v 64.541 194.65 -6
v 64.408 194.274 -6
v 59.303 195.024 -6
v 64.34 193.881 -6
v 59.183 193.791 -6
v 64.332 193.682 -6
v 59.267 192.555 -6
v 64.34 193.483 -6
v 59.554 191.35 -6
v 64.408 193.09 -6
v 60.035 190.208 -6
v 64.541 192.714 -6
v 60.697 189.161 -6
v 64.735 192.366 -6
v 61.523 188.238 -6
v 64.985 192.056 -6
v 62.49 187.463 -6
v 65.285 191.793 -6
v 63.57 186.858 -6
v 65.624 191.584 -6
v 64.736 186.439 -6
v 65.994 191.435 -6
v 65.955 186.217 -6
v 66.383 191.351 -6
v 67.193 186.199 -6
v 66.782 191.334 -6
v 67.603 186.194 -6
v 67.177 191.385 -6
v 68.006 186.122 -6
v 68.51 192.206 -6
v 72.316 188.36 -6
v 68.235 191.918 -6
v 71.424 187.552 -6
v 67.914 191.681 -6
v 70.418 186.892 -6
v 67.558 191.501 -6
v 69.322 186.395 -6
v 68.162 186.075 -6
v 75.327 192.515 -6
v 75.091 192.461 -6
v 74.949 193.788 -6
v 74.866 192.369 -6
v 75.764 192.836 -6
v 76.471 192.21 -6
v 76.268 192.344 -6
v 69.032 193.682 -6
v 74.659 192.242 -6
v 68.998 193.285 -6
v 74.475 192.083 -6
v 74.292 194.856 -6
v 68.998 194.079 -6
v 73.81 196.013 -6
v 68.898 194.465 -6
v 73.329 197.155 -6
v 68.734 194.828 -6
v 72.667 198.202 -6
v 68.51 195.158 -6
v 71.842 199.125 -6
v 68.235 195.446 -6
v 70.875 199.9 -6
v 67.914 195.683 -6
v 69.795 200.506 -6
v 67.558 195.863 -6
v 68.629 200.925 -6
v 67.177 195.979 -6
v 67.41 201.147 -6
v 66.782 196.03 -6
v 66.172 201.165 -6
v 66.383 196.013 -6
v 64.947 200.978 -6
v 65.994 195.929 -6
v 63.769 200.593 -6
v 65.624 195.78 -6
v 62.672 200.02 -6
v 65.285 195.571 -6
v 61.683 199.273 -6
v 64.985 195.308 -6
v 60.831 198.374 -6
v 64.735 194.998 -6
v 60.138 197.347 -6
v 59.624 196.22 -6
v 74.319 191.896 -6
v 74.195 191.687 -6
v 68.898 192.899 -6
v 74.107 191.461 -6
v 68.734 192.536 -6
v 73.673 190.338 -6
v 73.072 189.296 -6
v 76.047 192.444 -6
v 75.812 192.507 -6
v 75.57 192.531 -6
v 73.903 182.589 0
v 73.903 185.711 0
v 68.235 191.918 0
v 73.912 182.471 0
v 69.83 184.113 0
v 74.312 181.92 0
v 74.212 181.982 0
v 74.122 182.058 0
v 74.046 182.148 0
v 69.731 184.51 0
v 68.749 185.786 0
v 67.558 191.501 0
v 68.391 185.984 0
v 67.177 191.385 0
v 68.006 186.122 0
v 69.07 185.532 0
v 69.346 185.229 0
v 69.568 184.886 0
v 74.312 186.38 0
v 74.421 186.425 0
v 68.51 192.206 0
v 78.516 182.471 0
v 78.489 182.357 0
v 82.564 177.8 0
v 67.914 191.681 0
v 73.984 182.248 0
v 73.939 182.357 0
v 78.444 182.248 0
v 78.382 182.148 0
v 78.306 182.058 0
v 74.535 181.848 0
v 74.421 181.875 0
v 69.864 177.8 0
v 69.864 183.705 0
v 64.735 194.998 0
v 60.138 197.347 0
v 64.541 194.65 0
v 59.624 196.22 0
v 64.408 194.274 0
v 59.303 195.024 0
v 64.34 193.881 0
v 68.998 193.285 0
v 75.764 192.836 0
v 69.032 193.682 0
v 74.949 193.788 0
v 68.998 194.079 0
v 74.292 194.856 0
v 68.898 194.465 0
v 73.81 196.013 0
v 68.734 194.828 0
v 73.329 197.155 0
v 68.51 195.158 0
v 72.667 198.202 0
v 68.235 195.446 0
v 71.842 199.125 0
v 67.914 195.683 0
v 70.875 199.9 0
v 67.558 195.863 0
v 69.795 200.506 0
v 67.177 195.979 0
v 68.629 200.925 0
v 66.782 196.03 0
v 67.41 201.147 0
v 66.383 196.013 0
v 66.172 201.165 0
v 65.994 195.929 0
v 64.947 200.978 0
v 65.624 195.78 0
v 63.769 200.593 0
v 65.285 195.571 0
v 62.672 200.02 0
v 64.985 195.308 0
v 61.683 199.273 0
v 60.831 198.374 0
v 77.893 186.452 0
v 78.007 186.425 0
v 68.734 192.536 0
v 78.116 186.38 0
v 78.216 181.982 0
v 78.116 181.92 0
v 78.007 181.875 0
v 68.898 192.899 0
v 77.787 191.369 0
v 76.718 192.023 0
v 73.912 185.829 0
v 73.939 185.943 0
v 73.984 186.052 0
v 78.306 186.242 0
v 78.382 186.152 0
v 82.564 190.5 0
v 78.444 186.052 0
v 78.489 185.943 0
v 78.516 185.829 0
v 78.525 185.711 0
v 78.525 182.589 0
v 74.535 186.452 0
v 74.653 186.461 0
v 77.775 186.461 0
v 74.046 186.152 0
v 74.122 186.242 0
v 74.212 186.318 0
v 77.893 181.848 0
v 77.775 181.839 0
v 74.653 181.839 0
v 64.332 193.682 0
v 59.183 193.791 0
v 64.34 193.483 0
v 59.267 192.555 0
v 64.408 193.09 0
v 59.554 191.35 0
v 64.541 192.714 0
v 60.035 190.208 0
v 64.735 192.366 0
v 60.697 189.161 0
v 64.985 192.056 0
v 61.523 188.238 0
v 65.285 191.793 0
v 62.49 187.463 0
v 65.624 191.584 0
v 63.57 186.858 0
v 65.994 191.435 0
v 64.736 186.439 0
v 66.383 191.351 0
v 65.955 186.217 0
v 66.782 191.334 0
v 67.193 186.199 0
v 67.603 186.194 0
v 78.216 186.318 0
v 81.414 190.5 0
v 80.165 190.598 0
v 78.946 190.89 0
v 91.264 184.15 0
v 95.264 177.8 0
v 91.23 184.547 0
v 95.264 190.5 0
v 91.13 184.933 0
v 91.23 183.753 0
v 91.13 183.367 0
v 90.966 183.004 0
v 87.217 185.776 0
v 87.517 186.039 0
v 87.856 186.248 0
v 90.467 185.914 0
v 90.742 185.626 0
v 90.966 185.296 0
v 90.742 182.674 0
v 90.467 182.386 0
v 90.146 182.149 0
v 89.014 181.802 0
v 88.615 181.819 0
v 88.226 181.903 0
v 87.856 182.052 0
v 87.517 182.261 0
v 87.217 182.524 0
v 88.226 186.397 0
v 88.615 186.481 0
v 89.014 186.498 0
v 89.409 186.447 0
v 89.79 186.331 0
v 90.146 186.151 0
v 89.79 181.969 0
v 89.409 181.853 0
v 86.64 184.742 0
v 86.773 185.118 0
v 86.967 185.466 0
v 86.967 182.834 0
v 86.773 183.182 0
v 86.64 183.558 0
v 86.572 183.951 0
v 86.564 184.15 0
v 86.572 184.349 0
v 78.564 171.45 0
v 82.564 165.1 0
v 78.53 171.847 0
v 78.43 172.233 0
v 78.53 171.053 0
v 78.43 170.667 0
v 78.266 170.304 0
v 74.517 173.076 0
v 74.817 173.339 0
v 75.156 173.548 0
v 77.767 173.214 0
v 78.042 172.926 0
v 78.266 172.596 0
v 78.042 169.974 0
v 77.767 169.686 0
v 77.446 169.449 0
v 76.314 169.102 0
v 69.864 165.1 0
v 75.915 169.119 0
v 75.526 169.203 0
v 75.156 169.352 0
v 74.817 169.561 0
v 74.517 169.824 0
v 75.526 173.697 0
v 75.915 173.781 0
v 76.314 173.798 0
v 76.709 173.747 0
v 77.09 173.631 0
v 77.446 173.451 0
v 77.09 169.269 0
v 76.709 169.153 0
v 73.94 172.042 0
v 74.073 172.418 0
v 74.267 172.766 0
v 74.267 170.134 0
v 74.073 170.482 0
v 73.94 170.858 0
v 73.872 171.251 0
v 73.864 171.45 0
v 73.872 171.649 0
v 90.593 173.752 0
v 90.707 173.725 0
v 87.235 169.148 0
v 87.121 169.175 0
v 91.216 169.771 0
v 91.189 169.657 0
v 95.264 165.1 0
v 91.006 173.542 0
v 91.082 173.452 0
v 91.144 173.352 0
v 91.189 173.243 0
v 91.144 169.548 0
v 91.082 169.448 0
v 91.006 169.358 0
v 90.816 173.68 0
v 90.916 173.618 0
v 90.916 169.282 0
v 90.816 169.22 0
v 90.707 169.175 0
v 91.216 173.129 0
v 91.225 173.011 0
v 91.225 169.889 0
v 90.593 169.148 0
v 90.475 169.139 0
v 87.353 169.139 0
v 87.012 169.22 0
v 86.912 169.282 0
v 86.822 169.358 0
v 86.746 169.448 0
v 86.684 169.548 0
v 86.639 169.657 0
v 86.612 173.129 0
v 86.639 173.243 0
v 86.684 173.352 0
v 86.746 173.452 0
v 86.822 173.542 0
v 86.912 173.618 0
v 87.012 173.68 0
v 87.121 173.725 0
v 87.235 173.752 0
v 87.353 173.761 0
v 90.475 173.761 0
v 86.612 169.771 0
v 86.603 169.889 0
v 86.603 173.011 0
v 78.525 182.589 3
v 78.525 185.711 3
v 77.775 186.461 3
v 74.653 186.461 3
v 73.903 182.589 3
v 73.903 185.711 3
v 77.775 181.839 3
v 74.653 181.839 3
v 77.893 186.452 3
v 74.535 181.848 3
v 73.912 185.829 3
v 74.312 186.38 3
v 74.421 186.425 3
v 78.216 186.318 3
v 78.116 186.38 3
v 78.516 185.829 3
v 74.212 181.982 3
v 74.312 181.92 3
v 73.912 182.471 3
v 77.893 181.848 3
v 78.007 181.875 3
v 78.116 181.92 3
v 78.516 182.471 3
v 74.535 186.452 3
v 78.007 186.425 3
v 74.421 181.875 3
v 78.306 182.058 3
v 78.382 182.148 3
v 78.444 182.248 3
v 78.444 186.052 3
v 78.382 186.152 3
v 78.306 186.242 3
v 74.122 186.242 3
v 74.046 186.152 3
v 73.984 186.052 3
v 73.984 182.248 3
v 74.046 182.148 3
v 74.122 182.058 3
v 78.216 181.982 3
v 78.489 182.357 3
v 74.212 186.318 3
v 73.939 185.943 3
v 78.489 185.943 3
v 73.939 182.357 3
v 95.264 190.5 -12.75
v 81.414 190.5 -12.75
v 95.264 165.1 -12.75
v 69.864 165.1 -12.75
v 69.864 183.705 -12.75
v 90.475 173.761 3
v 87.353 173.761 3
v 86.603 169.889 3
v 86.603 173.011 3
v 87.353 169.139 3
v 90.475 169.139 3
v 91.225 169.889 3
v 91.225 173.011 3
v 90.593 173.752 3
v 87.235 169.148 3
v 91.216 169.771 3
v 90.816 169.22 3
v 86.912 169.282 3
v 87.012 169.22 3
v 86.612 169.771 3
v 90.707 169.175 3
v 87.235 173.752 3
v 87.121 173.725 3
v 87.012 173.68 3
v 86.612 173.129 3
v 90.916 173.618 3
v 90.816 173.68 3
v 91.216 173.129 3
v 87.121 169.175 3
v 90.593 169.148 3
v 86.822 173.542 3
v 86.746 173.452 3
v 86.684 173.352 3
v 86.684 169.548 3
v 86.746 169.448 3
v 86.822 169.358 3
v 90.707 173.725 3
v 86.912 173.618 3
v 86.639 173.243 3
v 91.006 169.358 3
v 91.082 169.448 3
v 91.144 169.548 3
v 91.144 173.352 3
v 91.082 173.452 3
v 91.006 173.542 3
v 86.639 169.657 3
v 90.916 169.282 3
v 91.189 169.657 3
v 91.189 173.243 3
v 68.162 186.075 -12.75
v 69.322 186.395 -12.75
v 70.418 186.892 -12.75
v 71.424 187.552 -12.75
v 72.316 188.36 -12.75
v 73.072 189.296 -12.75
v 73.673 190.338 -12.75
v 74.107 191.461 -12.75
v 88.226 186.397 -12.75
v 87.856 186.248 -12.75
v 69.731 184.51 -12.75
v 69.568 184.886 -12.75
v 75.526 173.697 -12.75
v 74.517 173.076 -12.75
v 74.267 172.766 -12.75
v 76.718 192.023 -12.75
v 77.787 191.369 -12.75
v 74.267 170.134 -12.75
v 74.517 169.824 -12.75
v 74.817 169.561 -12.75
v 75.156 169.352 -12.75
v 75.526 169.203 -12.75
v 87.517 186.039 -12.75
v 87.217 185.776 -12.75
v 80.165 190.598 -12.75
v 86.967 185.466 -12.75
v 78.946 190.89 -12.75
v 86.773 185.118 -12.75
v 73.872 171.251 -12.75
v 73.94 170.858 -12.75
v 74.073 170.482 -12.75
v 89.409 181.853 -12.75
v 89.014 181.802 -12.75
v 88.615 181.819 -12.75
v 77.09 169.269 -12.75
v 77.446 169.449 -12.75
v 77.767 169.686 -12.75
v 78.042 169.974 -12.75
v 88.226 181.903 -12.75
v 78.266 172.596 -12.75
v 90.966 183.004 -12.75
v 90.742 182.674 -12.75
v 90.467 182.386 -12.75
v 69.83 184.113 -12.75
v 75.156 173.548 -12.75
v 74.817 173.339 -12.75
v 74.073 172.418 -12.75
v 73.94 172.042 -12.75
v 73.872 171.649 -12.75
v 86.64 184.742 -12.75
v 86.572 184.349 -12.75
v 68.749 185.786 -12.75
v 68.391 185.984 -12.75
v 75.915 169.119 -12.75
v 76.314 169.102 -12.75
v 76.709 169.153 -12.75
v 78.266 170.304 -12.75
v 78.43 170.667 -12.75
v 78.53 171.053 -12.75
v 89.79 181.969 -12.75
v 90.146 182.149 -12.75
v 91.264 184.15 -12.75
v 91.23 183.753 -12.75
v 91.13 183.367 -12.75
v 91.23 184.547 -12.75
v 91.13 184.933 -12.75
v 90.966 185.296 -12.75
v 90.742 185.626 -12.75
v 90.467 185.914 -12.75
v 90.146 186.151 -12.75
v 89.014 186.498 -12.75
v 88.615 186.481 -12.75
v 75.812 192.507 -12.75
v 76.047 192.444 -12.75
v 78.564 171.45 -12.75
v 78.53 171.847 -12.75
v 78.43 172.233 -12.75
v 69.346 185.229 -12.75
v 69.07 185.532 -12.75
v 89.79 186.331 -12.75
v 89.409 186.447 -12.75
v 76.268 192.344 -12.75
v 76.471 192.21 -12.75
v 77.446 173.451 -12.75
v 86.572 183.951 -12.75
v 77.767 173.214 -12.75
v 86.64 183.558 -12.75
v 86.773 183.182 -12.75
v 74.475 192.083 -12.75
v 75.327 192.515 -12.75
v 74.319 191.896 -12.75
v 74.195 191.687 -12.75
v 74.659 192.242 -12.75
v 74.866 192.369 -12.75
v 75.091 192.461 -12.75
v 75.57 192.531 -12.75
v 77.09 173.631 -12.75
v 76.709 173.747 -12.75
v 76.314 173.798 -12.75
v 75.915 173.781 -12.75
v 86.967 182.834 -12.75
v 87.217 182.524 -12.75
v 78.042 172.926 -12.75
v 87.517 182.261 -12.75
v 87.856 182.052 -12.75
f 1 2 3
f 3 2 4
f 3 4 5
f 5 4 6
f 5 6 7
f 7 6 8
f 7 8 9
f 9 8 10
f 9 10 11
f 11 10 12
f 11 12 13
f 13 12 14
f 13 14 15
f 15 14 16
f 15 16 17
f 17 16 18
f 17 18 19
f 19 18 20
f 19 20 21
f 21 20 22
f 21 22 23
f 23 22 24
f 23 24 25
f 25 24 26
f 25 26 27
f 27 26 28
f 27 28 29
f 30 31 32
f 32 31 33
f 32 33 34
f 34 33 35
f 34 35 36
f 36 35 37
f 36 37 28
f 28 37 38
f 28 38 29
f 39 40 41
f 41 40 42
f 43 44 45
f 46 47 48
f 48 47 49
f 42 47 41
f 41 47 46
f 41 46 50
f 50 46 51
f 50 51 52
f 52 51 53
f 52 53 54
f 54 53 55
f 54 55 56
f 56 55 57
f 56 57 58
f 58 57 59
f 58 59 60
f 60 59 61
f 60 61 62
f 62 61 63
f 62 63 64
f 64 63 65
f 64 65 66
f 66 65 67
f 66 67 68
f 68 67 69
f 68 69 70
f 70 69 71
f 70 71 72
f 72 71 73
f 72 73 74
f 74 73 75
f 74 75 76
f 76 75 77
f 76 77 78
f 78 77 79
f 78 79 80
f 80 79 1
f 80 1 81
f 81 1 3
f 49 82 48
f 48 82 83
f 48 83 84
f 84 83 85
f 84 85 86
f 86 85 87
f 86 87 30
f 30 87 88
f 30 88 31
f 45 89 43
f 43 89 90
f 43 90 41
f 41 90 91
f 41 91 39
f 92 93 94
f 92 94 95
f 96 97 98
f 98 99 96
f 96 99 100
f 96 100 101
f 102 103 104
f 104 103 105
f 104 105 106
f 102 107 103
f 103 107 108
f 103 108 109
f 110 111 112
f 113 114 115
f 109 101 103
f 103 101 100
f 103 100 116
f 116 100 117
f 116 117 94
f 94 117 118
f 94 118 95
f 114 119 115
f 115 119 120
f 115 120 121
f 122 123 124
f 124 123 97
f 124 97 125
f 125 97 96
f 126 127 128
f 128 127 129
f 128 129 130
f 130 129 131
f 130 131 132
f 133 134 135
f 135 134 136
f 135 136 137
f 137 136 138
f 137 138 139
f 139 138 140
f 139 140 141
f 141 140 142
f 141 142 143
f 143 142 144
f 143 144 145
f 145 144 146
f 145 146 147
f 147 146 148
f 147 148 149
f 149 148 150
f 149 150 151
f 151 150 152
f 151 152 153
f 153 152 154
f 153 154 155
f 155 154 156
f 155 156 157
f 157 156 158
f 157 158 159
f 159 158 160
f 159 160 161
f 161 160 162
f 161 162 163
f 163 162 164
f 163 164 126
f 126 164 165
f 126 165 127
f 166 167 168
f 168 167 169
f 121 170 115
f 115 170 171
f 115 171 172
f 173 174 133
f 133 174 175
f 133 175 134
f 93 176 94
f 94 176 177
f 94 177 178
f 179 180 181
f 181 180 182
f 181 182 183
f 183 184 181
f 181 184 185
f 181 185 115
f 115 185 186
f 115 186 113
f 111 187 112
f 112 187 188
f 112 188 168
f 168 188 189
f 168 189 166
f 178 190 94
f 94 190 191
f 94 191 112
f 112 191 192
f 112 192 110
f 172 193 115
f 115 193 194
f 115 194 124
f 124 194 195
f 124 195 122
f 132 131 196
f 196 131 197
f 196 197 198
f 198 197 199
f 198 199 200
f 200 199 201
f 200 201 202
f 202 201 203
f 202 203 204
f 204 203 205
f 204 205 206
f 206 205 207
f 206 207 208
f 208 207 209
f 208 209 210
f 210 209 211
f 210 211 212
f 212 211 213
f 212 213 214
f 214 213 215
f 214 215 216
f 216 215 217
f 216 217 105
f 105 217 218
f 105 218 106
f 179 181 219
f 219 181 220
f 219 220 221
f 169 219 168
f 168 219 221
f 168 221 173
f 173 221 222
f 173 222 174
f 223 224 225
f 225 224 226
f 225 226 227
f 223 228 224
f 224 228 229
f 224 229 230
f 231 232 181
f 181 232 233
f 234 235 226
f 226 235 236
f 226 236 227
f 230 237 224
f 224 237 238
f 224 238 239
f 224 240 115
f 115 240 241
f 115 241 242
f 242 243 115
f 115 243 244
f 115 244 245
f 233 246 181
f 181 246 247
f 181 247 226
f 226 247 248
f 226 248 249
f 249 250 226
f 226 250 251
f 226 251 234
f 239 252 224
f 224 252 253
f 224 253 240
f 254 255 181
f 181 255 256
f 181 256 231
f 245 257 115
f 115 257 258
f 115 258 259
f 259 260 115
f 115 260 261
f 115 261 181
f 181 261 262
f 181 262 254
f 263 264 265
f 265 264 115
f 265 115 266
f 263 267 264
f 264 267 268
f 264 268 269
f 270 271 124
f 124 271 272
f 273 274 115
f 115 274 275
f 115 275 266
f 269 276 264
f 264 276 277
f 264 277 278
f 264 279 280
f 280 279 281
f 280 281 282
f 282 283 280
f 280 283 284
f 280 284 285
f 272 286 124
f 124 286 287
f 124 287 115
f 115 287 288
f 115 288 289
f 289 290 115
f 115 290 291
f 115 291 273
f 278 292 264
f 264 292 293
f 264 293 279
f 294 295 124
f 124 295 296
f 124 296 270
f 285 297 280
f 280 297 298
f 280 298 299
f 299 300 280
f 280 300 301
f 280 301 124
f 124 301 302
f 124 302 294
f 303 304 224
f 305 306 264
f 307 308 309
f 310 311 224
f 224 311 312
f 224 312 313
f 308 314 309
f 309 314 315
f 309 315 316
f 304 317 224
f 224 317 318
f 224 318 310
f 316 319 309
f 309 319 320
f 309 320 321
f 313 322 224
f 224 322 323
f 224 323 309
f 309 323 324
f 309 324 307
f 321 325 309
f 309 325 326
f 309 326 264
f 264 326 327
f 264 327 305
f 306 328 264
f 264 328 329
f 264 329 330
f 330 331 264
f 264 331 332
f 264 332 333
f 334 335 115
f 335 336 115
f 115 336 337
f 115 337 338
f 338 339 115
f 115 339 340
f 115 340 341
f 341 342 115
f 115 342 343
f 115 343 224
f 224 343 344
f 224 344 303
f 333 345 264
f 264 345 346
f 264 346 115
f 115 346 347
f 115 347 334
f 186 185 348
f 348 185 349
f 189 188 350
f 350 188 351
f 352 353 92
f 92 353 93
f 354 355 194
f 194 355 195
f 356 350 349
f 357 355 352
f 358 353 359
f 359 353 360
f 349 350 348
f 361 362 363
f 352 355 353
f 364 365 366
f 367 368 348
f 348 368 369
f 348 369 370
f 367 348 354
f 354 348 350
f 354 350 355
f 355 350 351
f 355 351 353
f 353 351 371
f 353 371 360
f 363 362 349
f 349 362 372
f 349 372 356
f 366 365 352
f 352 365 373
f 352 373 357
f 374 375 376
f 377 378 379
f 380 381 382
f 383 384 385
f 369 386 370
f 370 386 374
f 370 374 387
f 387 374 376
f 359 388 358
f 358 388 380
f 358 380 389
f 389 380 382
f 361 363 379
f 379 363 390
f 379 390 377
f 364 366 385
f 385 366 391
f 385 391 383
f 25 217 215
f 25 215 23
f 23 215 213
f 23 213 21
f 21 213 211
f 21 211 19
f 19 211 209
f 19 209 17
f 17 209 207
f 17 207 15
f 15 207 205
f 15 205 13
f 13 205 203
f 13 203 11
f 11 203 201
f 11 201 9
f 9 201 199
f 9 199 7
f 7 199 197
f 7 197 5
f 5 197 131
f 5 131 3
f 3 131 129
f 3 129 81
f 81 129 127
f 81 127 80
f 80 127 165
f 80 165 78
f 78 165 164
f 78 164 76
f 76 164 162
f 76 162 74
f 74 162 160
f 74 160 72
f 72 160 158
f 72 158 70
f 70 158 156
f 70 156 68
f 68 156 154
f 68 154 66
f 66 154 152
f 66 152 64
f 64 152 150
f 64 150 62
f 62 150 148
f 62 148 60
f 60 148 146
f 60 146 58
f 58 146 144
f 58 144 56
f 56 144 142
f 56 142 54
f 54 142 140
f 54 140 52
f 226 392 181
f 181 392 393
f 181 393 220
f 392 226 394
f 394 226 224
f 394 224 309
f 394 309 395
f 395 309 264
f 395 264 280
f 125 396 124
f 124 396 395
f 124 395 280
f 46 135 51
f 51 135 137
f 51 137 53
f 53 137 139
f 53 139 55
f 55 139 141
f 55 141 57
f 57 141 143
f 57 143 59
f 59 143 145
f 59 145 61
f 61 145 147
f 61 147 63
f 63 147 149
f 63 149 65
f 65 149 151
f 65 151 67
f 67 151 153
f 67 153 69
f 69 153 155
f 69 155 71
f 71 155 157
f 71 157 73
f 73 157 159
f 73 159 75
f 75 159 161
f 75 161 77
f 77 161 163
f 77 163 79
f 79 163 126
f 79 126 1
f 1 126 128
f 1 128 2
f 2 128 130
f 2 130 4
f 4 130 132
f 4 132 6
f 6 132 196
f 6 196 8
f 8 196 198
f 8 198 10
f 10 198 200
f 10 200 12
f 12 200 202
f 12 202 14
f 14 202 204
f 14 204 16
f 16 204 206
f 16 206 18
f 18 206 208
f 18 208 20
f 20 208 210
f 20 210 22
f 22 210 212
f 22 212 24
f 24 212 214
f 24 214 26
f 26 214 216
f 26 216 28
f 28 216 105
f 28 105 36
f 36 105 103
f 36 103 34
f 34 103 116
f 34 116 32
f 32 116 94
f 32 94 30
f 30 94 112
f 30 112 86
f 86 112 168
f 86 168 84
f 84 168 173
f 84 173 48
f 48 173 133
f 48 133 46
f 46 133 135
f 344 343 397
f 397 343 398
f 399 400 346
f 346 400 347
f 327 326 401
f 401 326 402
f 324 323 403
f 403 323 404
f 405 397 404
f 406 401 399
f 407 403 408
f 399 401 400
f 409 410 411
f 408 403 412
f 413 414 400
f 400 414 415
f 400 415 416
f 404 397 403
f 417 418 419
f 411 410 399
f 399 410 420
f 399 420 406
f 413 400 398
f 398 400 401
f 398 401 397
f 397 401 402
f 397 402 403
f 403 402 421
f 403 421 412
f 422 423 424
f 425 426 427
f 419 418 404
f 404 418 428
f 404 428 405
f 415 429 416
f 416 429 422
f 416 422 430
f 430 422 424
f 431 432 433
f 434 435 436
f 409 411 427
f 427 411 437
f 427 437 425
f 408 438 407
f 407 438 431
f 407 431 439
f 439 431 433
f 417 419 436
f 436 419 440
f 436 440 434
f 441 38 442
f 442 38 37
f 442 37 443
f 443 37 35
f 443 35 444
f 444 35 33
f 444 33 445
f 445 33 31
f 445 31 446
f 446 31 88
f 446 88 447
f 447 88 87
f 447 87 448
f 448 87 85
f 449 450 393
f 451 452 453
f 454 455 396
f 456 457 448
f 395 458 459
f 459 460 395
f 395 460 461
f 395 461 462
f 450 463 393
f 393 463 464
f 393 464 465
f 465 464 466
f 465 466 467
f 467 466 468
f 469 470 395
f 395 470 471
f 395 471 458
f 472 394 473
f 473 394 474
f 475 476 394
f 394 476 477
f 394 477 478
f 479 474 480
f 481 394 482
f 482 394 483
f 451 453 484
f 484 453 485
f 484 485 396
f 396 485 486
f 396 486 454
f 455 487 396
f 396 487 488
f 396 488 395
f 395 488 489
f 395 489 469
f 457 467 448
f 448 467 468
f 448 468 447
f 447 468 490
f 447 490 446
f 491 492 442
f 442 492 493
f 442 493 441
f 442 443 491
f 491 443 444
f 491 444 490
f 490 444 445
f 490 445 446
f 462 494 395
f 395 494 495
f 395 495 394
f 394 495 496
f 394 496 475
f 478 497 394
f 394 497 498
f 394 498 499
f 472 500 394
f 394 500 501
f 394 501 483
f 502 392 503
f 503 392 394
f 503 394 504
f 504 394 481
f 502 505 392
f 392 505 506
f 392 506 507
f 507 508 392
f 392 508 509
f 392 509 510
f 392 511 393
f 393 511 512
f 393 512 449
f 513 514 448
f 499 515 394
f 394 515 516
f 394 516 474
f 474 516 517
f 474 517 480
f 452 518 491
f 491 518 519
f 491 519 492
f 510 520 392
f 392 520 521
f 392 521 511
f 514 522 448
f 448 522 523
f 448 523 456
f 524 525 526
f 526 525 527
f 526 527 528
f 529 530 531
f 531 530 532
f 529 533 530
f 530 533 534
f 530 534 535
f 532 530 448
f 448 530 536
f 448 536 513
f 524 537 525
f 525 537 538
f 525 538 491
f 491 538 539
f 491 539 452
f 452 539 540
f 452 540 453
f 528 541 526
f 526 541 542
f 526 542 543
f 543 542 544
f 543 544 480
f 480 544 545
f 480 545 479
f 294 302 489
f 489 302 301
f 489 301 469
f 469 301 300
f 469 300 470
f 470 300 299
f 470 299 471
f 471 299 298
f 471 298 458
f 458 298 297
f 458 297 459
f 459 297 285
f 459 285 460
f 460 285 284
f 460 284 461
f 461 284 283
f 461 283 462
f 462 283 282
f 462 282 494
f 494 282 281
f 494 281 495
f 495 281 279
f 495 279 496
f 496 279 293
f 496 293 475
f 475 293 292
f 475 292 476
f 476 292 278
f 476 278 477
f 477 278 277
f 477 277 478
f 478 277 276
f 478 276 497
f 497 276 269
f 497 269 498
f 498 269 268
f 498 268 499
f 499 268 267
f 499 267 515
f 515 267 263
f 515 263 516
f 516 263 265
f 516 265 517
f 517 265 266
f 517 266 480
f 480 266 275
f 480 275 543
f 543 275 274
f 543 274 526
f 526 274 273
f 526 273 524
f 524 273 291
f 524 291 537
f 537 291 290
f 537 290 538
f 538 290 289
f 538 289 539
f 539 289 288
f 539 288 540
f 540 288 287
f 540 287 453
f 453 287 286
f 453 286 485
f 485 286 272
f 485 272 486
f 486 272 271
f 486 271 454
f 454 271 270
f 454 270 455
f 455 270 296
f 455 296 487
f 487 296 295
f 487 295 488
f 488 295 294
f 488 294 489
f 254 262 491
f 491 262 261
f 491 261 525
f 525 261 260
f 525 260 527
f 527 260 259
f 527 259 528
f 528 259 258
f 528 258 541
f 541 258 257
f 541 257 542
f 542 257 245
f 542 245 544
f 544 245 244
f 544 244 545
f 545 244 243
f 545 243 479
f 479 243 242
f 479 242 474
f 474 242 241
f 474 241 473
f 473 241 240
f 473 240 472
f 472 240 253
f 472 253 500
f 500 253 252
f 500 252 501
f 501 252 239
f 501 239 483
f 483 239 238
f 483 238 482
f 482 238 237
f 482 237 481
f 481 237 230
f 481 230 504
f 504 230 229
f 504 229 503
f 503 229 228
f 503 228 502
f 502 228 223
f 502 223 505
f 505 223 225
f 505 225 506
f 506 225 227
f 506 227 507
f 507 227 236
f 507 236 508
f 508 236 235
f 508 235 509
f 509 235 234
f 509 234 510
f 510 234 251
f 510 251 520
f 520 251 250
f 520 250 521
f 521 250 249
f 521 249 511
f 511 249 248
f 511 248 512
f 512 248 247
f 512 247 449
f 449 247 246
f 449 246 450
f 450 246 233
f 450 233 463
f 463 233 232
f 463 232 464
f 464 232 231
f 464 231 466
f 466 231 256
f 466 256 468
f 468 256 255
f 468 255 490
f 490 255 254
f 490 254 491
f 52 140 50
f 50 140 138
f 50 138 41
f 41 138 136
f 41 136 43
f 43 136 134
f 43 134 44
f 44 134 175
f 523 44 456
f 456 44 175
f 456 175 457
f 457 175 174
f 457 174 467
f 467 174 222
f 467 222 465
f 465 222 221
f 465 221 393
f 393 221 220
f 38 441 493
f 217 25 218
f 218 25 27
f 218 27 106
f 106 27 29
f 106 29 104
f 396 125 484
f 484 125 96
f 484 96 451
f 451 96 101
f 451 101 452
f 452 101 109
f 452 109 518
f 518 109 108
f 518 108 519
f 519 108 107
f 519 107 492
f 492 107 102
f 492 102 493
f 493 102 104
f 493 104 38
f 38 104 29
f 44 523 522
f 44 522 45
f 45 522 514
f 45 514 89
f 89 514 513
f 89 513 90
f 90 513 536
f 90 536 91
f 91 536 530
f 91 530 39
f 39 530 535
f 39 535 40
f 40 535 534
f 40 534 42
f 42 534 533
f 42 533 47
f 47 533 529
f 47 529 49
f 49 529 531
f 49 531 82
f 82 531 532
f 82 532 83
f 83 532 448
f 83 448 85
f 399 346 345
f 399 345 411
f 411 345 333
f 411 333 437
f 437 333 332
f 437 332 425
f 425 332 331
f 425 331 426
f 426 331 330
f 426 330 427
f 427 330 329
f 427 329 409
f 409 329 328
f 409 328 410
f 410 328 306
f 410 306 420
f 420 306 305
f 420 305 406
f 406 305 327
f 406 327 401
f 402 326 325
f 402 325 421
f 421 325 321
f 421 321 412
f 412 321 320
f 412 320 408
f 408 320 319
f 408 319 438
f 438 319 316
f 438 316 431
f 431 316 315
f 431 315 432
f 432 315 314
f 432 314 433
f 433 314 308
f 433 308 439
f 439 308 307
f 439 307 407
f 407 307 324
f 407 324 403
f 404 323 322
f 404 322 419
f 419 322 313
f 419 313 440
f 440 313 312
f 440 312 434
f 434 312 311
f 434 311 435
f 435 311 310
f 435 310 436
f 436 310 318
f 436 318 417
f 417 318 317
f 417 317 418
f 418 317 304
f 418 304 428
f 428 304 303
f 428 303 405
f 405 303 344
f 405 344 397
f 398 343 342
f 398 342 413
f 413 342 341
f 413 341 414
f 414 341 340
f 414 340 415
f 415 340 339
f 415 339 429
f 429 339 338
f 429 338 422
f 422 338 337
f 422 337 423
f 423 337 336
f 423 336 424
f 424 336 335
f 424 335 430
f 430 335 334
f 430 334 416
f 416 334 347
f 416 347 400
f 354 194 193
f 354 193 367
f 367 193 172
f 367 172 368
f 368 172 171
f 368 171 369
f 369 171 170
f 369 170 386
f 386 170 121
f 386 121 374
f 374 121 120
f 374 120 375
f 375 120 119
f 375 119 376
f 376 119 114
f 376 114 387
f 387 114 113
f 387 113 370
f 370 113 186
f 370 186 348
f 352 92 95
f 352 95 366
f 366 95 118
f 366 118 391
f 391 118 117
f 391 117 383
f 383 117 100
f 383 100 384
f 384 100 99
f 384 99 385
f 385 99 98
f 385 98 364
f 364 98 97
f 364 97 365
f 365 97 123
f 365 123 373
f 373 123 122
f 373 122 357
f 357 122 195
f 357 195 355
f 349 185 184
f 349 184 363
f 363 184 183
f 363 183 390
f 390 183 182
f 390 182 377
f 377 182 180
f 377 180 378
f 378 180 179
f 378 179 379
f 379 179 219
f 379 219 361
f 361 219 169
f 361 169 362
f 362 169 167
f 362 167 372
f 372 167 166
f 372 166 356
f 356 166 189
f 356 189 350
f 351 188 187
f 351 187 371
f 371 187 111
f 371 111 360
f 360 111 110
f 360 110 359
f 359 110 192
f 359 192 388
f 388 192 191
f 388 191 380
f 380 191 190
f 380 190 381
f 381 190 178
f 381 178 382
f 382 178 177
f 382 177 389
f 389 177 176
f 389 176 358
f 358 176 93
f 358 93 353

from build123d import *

# Parameters (mm, degrees)
SKETCH3_R             = 2.35
BOSS_EXTRUDE1_DEPTH   = 3
BOSS_EXTRUDE1_2_DEPTH = 3
SKETCH3_W             = 4.6228
SKETCH3_H             = 4.6228
BOSS_EXTRUDE1_3_DEPTH = 3
BOSS_EXTRUDE1_4_DEPTH = 3
SKETCH4_R             = 7.5
SKETCH4_R_2           = 2.35
SKETCH4_W             = 25.4
SKETCH4_H             = 25.4
BOSS_EXTRUDE2_DEPTH   = 6
BOSS_EXTRUDE3_DEPTH   = 6.75
SKETCH7_R             = 2.35
CUT_EXTRUDE2_DEPTH    = 224.153476458
FILLET1_R             = 8
FILLET2_R             = 2.5
FILLET3_R             = 1.5
FILLET4_R             = 0.75


with BuildPart() as part:
    # Sketch3 → Boss-Extrude1 (new body)
    with BuildSketch(Plane.XY):
        with Locations((88.913961031, 184.15)):
            Circle(SKETCH3_R)
    extrude(amount=BOSS_EXTRUDE1_DEPTH)


with BuildPart() as body_2:
    # Sketch3 → Boss-Extrude1 2 (new body)
    with BuildSketch(Plane.XY):
        with Locations((76.213961031, 171.45)):
            Circle(SKETCH3_R)
    extrude(amount=BOSS_EXTRUDE1_2_DEPTH)


with BuildPart() as body_3:
    # Sketch3 → Boss-Extrude1 3 (new body)
    with BuildSketch(Plane.XY):
        with Locations((76.213961031, 184.15)):
            Rectangle(SKETCH3_W, SKETCH3_H)
    extrude(amount=BOSS_EXTRUDE1_3_DEPTH)



with BuildPart() as body_4:
    # Sketch3 → Boss-Extrude1 4 (new body)
    with BuildSketch(Plane.XY):
        with Locations((88.913961031, 171.45)):
            Rectangle(SKETCH3_W, SKETCH3_H)
    extrude(amount=BOSS_EXTRUDE1_4_DEPTH)


with BuildPart() as body_3_1:
    add(body_3.part)

    add(body_4.part)  # Boss-Extrude2 merges body 4

    add(body_2.part)  # Boss-Extrude2 merges body 2
    # Sketch4 → Boss-Extrude2 (add)
    # profile 1 of 2: a face of its own
    with BuildSketch(Plane(origin=(0, 0, 0), x_dir=(-1, 0, 0), z_dir=(0, 0, -1))):
        with Locations((-66.681980515, 193.681980515)):
            Circle(SKETCH4_R)
        with Locations((-66.681980515, 193.681980515)):
            Circle(SKETCH4_R_2, mode=Mode.SUBTRACT)
    # profile 2 of 2: a face of its own
    with BuildSketch(Plane(origin=(0, 0, 0), x_dir=(-1, 0, 0), z_dir=(0, 0, -1))):
        with Locations((-82.563961031, 177.8)):
            Rectangle(SKETCH4_W, SKETCH4_H)
    extrude(amount=BOSS_EXTRUDE2_DEPTH)

    # Sketch6 → Boss-Extrude3 (add)
    with BuildSketch(Plane(origin=(0, 0, -6), x_dir=(-1, 0, 0), z_dir=(0, 0, -1))):
        with BuildLine():
            Line((-73.748627528, 190.5), (-95.263961031, 190.5))
            Line((-95.263961031, 190.5), (-95.263961031, 165.1))
            Line((-95.263961031, 165.1), (-69.863961031, 165.1))
            Line((-69.863961031, 165.1), (-69.863961031, 186.615333503))
            ThreePointArc((-69.863961031, 186.615333503), (-72.16205807, 188.201902961), (-73.748627528, 190.5))
        make_face()
    extrude(amount=BOSS_EXTRUDE3_DEPTH)


with BuildPart() as cut_extrude2_tool:
    # Sketch7 → Cut-Extrude2 (new, through all)
    with BuildSketch(Plane.XY.offset(3)):
        with Locations((88.913961031, 184.15)):
            Circle(SKETCH7_R)
        with Locations((76.213961031, 171.45)):
            Circle(SKETCH7_R)
    extrude(amount=-CUT_EXTRUDE2_DEPTH)


with BuildPart() as part_1:
    add(part.part)

    # Cut-Extrude2: cut by cut_extrude2_tool
    add(cut_extrude2_tool.part, mode=Mode.SUBTRACT)


with BuildPart() as body_3_2:
    add(body_3_1.part)

    # Cut-Extrude2: cut by cut_extrude2_tool
    add(cut_extrude2_tool.part, mode=Mode.SUBTRACT)

    # Fillet1
    fillet1_edges = [body_3_2.edges().sort_by_distance(p)[0] for p in [
        (73.473519369, 190.5, -3),
    ]]
    fillet(fillet1_edges, radius=FILLET1_R)

    # Fillet2
    # the kernel refuses this fillet: 2.5 mm, written as the material it adds along each edge
    with BuildSketch(Plane(origin=(69.863961031, 186.890441662, -13.962947932), x_dir=(-0.9681157623464371, -0.25050323490202075, 0), z_dir=(0, 0, 1))) as fillet2_piece_1_section:
        with BuildLine():
            CenterArc((3.218187092, 2.457364076), FILLET2_R, 165.492706976, 93.910495797)
            Line((0.797897687, 3.083622163), (0, 0))
            ThreePointArc((0, 0), (1.37922304, 0.127907773), (2.758446079, 0))
        make_face()
    fillet2_piece_1 = extrude(amount=13.962947932, mode=Mode.PRIVATE)
    fillet2_piece_1 = split(fillet2_piece_1, bisect_by=Plane(origin=(69.434424627, 185.67157625, -6), z_dir=(0, 0, -1)), keep=Keep.TOP, mode=Mode.PRIVATE)
    fillet2_piece_1 = fillet2_piece_1 - Plane(origin=(66.681980515, 193.681980515, -9.375), x_dir=(0.4105781310115351, -0.9118254209743633, 0), z_dir=(0, 0, 1)) * Cylinder(7.75, 41, mode=Mode.PRIVATE)
    fillet2_piece_1 = split(fillet2_piece_1, bisect_by=Plane(origin=(69.434424627, 185.67157625, -12.75), z_dir=(0, 0, 1)), keep=Keep.TOP, mode=Mode.PRIVATE)
    add(fillet2_piece_1)
    with BuildSketch(Plane(origin=(69.863961031, 186.890441662, -6), x_dir=(-0.9681157623464371, -0.25050323490202075, 0), z_dir=(0, 0, 1))) as fillet2_piece_2_section:
        with BuildLine():
            CenterArc((3.218187092, 2.457364076), FILLET2_R, 165.492706976, 93.910495797)
            Line((0.797897687, 3.083622163), (0, 0))
            ThreePointArc((0, 0), (1.37922304, 0.127907773), (2.758446079, 0))
        make_face()
    fillet2_piece_2 = extrude(amount=6, mode=Mode.PRIVATE)
    fillet2_piece_2 = fillet2_piece_2 & Plane(origin=(66.681980515, 193.681980515, -3), x_dir=(0.4105781310115351, -0.9118254209743633, 0), z_dir=(0, 0, 1)) * Cylinder(7.75, 25, mode=Mode.PRIVATE)
    add(fillet2_piece_2)
    with BuildSketch(Plane(origin=(69.863961031, 186.890441662, -6), x_dir=(-0.9681157623464371, -0.25050323490202075, 0), z_dir=(0, 0, 1))) as fillet2_piece_3_section:
        with BuildLine():
            CenterArc((3.218187092, 2.457364076), FILLET2_R, 165.492706976, 93.910495797)
            Line((0.797897687, 3.083622163), (0, 0))
            ThreePointArc((0, 0), (1.37922304, 0.127907773), (2.758446079, 0))
        make_face()
    fillet2_piece_3 = extrude(amount=6, mode=Mode.PRIVATE)
    fillet2_piece_3 = fillet2_piece_3 - Plane(origin=(66.681980515, 193.681980515, -3), x_dir=(0.4105781310115351, -0.9118254209743633, 0), z_dir=(0, 0, 1)) * Cylinder(7.75, 25, mode=Mode.PRIVATE)
    add(fillet2_piece_3)

    # Fillet3
    fillet3_edges = [body_3_2.edges().sort_by_distance(p)[0] for p in [
        (74.361694574, 194.723369962, -9.375),
    ]]
    fillet(fillet3_edges, radius=FILLET3_R)

    # Fillet4
    fillet4_edges = [body_3_2.edges().sort_by_distance(p)[0] for p in [
        (91.225361031, 173.7614, 1.5),
        (86.602561031, 173.7614, 1.5),
        (86.602561031, 169.1386, 1.5),
        (91.225361031, 169.1386, 1.5),
        (78.525361031, 181.8386, 1.5),
        (73.902561031, 181.8386, 1.5),
        (73.902561031, 186.4614, 1.5),
        (78.525361031, 186.4614, 1.5),
    ]]
    fillet(fillet4_edges, radius=FILLET4_R)


solid = body_3_2.part
